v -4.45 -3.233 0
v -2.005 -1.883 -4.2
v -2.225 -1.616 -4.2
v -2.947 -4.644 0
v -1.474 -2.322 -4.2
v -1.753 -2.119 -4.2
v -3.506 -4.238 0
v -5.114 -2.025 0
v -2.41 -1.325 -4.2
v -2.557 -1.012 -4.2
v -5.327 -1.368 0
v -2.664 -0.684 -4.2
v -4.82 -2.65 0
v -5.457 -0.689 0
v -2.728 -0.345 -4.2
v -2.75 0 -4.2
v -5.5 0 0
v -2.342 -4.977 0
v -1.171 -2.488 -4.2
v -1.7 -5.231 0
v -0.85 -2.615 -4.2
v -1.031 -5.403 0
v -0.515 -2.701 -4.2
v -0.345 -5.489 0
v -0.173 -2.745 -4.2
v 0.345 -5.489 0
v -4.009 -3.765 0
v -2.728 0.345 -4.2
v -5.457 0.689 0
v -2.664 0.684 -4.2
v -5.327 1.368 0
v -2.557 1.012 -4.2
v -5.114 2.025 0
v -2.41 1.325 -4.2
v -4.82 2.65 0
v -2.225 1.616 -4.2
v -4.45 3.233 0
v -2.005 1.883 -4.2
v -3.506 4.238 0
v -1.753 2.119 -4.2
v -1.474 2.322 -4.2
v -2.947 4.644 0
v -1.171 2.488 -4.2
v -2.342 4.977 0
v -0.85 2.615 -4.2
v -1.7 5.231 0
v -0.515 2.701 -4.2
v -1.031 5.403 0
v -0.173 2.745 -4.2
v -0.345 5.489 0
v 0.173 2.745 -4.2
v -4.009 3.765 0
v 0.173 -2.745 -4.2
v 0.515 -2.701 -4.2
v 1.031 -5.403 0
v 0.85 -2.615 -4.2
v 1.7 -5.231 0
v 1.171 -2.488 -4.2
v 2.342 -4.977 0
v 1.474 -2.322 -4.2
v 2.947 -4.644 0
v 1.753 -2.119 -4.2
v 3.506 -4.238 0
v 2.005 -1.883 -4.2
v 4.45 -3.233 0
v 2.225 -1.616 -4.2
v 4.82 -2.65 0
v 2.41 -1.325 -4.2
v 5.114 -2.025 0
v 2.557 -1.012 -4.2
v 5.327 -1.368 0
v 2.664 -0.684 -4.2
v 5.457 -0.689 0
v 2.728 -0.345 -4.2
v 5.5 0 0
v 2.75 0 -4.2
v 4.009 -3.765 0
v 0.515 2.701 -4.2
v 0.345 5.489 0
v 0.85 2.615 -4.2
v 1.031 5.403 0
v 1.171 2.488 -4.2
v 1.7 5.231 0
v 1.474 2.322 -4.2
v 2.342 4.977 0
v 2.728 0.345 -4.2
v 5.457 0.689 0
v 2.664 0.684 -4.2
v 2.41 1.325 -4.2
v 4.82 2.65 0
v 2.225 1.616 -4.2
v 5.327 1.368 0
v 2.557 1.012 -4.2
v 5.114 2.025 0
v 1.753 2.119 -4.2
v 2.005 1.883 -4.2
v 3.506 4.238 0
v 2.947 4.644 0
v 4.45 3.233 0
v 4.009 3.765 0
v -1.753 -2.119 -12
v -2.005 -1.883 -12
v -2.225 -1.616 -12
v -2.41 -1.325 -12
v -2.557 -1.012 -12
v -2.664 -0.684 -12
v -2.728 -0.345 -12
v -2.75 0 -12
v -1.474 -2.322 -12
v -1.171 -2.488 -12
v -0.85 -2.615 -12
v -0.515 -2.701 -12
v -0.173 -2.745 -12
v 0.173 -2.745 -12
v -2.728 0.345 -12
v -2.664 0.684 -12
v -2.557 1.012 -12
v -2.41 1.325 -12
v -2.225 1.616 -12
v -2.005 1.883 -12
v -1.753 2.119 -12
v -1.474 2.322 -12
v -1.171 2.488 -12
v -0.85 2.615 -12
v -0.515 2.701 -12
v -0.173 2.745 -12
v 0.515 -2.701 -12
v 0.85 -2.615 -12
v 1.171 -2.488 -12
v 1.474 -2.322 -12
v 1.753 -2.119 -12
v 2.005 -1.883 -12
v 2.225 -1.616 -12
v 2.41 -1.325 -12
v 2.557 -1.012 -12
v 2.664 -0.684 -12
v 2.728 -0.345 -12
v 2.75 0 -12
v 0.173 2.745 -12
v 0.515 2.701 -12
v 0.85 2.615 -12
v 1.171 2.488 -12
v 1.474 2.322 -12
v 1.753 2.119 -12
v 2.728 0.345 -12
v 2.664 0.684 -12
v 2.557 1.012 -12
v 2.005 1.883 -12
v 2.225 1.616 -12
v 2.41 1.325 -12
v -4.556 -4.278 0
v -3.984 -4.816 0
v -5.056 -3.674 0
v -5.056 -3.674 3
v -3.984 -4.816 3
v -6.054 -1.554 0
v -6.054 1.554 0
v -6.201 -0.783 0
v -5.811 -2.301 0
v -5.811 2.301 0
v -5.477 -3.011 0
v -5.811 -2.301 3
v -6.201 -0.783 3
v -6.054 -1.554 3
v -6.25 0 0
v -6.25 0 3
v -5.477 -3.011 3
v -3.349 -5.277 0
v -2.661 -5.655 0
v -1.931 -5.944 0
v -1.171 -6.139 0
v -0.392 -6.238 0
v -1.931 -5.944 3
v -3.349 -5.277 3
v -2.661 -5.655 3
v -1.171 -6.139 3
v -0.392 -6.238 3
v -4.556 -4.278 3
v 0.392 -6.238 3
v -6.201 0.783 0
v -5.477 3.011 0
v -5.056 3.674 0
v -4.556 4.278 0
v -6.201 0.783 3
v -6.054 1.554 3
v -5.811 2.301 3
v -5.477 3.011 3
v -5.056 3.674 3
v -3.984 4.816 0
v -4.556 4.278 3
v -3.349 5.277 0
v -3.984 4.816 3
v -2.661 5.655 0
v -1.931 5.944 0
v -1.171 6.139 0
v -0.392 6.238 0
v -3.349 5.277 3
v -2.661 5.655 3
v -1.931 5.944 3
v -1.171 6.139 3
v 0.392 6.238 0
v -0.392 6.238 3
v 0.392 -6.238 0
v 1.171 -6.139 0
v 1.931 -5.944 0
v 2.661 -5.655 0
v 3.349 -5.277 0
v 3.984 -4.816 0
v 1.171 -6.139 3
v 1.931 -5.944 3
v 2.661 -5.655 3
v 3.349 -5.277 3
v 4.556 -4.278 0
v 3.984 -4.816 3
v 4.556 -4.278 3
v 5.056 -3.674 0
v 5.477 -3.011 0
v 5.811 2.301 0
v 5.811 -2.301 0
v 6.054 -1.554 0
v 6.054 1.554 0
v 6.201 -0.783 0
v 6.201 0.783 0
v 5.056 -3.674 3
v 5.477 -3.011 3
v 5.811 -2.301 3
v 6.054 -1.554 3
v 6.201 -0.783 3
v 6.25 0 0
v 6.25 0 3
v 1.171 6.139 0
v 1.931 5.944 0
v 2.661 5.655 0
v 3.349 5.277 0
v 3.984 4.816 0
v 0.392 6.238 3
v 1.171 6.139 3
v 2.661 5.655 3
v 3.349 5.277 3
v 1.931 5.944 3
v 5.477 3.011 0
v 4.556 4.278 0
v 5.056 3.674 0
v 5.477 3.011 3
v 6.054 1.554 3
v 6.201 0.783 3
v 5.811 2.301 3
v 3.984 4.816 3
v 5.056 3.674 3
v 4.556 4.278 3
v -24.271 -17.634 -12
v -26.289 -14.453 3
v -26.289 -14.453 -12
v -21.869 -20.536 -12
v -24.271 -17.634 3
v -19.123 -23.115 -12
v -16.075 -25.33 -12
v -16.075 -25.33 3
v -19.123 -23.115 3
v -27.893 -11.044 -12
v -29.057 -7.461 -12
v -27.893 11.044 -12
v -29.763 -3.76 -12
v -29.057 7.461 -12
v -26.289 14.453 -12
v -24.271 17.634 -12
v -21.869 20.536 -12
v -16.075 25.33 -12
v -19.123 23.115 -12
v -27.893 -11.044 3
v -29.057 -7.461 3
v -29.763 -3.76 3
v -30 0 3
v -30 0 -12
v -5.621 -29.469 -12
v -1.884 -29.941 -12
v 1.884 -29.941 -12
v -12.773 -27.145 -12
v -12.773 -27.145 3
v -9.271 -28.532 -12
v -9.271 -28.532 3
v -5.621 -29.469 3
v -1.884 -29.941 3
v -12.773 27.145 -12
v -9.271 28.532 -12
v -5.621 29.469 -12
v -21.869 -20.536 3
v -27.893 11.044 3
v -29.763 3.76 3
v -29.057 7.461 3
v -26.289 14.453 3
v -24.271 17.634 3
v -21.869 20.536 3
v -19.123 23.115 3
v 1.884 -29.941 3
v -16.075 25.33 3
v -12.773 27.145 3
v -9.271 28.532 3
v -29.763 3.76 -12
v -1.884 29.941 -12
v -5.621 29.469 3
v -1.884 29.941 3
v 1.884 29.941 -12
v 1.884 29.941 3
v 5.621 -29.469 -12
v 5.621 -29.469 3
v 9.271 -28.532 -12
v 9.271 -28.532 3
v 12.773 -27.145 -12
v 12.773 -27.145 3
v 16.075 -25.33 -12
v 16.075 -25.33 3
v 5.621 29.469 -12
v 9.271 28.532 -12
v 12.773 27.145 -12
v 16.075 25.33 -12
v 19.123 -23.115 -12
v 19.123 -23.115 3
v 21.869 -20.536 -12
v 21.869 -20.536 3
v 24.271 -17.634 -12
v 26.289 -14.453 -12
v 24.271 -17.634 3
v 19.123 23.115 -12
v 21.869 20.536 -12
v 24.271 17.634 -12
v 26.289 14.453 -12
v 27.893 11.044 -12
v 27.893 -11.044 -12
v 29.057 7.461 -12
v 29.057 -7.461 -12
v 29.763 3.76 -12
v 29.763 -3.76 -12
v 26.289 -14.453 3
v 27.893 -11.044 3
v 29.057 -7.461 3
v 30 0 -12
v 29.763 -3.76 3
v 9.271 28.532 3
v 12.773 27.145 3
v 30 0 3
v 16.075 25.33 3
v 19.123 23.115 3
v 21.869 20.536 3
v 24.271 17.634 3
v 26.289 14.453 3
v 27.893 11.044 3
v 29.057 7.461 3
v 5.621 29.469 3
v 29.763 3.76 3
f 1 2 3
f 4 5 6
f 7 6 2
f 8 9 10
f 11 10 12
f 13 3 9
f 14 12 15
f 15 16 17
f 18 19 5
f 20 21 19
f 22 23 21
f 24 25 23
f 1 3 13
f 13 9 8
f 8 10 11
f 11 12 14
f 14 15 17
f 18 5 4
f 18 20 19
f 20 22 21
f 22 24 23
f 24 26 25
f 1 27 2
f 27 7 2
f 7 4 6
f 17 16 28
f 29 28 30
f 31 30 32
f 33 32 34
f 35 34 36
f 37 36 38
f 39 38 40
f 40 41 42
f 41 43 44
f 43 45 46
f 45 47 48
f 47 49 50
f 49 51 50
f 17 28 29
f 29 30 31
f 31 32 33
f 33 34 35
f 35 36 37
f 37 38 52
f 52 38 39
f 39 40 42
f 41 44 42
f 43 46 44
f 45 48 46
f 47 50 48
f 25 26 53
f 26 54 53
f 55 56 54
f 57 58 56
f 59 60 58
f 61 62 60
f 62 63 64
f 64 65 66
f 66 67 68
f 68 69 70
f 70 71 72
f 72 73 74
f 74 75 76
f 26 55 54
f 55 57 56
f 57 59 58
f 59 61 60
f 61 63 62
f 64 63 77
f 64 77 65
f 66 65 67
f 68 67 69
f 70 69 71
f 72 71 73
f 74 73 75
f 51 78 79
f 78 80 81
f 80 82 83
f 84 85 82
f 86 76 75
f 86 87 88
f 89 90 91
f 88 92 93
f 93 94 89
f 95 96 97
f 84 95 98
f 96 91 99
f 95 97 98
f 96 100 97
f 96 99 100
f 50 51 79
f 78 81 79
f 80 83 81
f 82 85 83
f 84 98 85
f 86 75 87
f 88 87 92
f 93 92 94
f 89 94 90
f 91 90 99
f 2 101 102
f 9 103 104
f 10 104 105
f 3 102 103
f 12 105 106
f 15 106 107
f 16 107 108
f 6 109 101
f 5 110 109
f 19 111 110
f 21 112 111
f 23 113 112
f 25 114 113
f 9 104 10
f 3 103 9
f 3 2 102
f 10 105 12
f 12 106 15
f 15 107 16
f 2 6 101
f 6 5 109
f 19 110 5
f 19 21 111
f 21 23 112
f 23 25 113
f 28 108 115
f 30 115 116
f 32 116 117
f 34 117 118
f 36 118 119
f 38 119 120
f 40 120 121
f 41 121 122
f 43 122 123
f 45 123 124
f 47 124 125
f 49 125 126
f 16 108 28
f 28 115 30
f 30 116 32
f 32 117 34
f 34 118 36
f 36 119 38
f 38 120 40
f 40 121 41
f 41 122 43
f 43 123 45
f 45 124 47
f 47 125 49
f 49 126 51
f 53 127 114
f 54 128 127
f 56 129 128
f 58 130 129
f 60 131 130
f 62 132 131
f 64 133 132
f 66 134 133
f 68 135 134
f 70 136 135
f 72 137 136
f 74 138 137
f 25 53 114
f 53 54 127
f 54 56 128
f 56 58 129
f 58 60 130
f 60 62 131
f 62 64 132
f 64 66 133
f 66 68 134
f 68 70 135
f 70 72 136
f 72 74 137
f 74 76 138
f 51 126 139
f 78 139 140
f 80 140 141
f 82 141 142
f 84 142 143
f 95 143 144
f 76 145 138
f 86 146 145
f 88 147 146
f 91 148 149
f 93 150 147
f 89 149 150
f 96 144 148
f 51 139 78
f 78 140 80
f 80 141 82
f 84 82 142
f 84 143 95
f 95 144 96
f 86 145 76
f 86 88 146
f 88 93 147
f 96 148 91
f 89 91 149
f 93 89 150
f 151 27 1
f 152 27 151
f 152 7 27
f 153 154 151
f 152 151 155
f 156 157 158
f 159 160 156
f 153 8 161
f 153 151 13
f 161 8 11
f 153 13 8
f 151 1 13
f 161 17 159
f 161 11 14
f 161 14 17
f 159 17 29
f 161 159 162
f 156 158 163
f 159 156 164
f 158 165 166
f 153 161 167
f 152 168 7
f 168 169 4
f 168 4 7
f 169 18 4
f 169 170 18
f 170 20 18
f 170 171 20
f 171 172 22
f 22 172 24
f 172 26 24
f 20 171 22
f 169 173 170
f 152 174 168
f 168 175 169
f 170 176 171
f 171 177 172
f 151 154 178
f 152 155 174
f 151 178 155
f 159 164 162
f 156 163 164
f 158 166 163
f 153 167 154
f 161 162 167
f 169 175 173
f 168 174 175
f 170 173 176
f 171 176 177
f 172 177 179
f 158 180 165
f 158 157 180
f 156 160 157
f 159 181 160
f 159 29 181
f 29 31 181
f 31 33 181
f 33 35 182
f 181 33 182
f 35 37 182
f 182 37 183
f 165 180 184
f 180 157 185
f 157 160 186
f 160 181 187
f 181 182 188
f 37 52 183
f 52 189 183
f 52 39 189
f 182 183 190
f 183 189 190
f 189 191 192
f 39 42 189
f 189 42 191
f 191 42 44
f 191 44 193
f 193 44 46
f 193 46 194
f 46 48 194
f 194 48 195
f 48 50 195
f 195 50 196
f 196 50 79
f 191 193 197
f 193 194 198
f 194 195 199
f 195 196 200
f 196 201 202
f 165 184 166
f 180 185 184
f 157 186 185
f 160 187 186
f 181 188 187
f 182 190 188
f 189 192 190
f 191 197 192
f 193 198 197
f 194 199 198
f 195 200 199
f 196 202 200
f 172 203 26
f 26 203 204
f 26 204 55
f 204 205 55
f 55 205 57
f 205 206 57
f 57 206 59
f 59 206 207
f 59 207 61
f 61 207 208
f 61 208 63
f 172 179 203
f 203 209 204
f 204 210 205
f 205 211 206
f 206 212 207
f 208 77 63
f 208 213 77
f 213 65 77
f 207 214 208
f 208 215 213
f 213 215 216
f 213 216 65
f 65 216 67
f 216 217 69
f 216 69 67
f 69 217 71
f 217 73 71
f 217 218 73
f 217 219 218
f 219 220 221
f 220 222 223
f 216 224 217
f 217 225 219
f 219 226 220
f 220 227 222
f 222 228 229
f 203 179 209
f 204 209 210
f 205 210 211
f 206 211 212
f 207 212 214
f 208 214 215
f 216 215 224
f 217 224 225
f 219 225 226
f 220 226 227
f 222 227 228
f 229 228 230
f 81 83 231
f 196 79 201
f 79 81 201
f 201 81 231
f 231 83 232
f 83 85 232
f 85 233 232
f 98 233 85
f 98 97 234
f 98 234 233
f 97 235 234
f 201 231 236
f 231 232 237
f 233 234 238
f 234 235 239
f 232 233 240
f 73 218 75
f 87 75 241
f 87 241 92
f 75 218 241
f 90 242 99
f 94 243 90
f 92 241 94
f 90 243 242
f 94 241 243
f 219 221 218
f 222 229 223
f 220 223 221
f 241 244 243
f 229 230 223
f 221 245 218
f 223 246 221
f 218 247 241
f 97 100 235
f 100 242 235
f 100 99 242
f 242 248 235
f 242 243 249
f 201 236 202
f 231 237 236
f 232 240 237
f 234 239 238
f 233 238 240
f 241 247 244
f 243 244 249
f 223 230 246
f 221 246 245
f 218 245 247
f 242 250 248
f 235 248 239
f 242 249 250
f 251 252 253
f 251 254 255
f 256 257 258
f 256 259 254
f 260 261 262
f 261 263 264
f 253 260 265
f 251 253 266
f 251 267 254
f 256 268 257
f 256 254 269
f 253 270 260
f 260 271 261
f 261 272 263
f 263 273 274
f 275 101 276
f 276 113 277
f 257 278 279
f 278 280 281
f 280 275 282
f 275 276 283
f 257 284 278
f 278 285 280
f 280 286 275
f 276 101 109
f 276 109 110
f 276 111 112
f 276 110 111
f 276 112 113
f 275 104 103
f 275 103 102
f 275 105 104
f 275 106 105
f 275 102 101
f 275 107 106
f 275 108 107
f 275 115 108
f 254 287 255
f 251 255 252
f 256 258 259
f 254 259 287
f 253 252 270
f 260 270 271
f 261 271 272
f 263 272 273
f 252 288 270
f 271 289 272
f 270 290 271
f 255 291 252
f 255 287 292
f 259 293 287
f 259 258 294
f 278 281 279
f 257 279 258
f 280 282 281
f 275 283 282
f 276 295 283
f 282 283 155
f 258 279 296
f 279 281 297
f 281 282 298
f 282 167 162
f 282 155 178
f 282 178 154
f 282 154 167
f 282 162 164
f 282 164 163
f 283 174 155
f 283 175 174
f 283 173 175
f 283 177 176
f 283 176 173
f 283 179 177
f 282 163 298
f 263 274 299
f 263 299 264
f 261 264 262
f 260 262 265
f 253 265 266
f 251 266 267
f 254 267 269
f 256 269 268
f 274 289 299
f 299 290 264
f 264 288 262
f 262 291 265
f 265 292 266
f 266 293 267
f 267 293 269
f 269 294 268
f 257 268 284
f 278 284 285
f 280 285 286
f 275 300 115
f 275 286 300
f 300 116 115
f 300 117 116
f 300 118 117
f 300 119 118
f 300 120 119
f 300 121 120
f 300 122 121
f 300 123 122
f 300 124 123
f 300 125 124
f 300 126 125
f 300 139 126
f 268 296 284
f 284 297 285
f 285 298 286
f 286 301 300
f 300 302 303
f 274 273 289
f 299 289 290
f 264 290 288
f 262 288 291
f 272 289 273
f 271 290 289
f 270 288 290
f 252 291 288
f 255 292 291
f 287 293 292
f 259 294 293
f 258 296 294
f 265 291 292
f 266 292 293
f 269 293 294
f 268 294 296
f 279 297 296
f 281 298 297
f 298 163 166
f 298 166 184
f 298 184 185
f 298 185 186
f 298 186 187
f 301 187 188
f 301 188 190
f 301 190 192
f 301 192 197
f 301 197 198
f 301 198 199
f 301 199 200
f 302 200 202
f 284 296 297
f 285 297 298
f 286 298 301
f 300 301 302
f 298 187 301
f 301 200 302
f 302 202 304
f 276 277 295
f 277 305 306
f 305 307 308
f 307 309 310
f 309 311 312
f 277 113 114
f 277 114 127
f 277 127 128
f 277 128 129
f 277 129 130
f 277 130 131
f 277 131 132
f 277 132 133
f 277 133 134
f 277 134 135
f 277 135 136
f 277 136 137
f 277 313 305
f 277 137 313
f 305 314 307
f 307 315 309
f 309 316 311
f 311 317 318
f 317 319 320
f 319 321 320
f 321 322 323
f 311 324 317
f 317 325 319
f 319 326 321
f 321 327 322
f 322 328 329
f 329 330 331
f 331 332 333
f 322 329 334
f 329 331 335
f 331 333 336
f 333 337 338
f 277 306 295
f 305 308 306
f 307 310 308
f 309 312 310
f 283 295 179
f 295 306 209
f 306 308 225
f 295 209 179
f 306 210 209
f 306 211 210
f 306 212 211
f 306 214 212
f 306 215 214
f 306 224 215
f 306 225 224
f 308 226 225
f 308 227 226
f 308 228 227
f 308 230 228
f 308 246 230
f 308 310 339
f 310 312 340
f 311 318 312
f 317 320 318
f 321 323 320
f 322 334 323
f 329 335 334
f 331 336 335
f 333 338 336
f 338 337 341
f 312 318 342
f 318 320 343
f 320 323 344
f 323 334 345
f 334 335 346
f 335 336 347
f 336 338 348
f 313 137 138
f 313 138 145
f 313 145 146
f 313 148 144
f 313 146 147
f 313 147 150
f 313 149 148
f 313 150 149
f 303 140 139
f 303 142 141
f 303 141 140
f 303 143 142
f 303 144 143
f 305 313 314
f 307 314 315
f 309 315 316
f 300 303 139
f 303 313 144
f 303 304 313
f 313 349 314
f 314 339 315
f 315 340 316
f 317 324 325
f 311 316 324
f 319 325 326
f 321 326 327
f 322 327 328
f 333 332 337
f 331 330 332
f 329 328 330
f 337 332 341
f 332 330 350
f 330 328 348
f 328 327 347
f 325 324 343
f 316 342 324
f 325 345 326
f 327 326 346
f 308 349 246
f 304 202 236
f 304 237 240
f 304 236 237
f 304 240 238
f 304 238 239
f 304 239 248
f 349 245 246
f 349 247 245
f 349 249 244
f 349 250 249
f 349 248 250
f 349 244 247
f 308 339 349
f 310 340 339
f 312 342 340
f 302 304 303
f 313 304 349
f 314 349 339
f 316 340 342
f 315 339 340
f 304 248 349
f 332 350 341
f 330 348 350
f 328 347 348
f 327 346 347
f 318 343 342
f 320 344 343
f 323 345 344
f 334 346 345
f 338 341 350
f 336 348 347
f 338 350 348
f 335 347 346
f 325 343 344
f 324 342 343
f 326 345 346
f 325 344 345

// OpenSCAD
$fn = 50;


difference() {
	union() {
		translate(v = [0, 0, -12.0000000000]) {
			cylinder(h = 15, r = 30.0000000000);
		}
	}
	union() {
		translate(v = [0, 0, 0]) {
			rotate(a = [0, 0, 0]) {
				difference() {
					union() {
						translate(v = [0, 0, -15.0000000000]) {
							cylinder(h = 15, r = 2.2500000000);
						}
						translate(v = [0, 0, -4.2000000000]) {
							cylinder(h = 4.2000000000, r1 = 2.7500000000, r2 = 5.5000000000);
						}
						translate(v = [0, 0, -15.0000000000]) {
							cylinder(h = 15, r = 2.7500000000);
						}
						translate(v = [0, 0, -15.0000000000]) {
							cylinder(h = 15, r = 2.2500000000);
						}
					}
					union();
				}
			}
		}
		#cylinder(h = 3, r = 6.2500000000);
	}
}
